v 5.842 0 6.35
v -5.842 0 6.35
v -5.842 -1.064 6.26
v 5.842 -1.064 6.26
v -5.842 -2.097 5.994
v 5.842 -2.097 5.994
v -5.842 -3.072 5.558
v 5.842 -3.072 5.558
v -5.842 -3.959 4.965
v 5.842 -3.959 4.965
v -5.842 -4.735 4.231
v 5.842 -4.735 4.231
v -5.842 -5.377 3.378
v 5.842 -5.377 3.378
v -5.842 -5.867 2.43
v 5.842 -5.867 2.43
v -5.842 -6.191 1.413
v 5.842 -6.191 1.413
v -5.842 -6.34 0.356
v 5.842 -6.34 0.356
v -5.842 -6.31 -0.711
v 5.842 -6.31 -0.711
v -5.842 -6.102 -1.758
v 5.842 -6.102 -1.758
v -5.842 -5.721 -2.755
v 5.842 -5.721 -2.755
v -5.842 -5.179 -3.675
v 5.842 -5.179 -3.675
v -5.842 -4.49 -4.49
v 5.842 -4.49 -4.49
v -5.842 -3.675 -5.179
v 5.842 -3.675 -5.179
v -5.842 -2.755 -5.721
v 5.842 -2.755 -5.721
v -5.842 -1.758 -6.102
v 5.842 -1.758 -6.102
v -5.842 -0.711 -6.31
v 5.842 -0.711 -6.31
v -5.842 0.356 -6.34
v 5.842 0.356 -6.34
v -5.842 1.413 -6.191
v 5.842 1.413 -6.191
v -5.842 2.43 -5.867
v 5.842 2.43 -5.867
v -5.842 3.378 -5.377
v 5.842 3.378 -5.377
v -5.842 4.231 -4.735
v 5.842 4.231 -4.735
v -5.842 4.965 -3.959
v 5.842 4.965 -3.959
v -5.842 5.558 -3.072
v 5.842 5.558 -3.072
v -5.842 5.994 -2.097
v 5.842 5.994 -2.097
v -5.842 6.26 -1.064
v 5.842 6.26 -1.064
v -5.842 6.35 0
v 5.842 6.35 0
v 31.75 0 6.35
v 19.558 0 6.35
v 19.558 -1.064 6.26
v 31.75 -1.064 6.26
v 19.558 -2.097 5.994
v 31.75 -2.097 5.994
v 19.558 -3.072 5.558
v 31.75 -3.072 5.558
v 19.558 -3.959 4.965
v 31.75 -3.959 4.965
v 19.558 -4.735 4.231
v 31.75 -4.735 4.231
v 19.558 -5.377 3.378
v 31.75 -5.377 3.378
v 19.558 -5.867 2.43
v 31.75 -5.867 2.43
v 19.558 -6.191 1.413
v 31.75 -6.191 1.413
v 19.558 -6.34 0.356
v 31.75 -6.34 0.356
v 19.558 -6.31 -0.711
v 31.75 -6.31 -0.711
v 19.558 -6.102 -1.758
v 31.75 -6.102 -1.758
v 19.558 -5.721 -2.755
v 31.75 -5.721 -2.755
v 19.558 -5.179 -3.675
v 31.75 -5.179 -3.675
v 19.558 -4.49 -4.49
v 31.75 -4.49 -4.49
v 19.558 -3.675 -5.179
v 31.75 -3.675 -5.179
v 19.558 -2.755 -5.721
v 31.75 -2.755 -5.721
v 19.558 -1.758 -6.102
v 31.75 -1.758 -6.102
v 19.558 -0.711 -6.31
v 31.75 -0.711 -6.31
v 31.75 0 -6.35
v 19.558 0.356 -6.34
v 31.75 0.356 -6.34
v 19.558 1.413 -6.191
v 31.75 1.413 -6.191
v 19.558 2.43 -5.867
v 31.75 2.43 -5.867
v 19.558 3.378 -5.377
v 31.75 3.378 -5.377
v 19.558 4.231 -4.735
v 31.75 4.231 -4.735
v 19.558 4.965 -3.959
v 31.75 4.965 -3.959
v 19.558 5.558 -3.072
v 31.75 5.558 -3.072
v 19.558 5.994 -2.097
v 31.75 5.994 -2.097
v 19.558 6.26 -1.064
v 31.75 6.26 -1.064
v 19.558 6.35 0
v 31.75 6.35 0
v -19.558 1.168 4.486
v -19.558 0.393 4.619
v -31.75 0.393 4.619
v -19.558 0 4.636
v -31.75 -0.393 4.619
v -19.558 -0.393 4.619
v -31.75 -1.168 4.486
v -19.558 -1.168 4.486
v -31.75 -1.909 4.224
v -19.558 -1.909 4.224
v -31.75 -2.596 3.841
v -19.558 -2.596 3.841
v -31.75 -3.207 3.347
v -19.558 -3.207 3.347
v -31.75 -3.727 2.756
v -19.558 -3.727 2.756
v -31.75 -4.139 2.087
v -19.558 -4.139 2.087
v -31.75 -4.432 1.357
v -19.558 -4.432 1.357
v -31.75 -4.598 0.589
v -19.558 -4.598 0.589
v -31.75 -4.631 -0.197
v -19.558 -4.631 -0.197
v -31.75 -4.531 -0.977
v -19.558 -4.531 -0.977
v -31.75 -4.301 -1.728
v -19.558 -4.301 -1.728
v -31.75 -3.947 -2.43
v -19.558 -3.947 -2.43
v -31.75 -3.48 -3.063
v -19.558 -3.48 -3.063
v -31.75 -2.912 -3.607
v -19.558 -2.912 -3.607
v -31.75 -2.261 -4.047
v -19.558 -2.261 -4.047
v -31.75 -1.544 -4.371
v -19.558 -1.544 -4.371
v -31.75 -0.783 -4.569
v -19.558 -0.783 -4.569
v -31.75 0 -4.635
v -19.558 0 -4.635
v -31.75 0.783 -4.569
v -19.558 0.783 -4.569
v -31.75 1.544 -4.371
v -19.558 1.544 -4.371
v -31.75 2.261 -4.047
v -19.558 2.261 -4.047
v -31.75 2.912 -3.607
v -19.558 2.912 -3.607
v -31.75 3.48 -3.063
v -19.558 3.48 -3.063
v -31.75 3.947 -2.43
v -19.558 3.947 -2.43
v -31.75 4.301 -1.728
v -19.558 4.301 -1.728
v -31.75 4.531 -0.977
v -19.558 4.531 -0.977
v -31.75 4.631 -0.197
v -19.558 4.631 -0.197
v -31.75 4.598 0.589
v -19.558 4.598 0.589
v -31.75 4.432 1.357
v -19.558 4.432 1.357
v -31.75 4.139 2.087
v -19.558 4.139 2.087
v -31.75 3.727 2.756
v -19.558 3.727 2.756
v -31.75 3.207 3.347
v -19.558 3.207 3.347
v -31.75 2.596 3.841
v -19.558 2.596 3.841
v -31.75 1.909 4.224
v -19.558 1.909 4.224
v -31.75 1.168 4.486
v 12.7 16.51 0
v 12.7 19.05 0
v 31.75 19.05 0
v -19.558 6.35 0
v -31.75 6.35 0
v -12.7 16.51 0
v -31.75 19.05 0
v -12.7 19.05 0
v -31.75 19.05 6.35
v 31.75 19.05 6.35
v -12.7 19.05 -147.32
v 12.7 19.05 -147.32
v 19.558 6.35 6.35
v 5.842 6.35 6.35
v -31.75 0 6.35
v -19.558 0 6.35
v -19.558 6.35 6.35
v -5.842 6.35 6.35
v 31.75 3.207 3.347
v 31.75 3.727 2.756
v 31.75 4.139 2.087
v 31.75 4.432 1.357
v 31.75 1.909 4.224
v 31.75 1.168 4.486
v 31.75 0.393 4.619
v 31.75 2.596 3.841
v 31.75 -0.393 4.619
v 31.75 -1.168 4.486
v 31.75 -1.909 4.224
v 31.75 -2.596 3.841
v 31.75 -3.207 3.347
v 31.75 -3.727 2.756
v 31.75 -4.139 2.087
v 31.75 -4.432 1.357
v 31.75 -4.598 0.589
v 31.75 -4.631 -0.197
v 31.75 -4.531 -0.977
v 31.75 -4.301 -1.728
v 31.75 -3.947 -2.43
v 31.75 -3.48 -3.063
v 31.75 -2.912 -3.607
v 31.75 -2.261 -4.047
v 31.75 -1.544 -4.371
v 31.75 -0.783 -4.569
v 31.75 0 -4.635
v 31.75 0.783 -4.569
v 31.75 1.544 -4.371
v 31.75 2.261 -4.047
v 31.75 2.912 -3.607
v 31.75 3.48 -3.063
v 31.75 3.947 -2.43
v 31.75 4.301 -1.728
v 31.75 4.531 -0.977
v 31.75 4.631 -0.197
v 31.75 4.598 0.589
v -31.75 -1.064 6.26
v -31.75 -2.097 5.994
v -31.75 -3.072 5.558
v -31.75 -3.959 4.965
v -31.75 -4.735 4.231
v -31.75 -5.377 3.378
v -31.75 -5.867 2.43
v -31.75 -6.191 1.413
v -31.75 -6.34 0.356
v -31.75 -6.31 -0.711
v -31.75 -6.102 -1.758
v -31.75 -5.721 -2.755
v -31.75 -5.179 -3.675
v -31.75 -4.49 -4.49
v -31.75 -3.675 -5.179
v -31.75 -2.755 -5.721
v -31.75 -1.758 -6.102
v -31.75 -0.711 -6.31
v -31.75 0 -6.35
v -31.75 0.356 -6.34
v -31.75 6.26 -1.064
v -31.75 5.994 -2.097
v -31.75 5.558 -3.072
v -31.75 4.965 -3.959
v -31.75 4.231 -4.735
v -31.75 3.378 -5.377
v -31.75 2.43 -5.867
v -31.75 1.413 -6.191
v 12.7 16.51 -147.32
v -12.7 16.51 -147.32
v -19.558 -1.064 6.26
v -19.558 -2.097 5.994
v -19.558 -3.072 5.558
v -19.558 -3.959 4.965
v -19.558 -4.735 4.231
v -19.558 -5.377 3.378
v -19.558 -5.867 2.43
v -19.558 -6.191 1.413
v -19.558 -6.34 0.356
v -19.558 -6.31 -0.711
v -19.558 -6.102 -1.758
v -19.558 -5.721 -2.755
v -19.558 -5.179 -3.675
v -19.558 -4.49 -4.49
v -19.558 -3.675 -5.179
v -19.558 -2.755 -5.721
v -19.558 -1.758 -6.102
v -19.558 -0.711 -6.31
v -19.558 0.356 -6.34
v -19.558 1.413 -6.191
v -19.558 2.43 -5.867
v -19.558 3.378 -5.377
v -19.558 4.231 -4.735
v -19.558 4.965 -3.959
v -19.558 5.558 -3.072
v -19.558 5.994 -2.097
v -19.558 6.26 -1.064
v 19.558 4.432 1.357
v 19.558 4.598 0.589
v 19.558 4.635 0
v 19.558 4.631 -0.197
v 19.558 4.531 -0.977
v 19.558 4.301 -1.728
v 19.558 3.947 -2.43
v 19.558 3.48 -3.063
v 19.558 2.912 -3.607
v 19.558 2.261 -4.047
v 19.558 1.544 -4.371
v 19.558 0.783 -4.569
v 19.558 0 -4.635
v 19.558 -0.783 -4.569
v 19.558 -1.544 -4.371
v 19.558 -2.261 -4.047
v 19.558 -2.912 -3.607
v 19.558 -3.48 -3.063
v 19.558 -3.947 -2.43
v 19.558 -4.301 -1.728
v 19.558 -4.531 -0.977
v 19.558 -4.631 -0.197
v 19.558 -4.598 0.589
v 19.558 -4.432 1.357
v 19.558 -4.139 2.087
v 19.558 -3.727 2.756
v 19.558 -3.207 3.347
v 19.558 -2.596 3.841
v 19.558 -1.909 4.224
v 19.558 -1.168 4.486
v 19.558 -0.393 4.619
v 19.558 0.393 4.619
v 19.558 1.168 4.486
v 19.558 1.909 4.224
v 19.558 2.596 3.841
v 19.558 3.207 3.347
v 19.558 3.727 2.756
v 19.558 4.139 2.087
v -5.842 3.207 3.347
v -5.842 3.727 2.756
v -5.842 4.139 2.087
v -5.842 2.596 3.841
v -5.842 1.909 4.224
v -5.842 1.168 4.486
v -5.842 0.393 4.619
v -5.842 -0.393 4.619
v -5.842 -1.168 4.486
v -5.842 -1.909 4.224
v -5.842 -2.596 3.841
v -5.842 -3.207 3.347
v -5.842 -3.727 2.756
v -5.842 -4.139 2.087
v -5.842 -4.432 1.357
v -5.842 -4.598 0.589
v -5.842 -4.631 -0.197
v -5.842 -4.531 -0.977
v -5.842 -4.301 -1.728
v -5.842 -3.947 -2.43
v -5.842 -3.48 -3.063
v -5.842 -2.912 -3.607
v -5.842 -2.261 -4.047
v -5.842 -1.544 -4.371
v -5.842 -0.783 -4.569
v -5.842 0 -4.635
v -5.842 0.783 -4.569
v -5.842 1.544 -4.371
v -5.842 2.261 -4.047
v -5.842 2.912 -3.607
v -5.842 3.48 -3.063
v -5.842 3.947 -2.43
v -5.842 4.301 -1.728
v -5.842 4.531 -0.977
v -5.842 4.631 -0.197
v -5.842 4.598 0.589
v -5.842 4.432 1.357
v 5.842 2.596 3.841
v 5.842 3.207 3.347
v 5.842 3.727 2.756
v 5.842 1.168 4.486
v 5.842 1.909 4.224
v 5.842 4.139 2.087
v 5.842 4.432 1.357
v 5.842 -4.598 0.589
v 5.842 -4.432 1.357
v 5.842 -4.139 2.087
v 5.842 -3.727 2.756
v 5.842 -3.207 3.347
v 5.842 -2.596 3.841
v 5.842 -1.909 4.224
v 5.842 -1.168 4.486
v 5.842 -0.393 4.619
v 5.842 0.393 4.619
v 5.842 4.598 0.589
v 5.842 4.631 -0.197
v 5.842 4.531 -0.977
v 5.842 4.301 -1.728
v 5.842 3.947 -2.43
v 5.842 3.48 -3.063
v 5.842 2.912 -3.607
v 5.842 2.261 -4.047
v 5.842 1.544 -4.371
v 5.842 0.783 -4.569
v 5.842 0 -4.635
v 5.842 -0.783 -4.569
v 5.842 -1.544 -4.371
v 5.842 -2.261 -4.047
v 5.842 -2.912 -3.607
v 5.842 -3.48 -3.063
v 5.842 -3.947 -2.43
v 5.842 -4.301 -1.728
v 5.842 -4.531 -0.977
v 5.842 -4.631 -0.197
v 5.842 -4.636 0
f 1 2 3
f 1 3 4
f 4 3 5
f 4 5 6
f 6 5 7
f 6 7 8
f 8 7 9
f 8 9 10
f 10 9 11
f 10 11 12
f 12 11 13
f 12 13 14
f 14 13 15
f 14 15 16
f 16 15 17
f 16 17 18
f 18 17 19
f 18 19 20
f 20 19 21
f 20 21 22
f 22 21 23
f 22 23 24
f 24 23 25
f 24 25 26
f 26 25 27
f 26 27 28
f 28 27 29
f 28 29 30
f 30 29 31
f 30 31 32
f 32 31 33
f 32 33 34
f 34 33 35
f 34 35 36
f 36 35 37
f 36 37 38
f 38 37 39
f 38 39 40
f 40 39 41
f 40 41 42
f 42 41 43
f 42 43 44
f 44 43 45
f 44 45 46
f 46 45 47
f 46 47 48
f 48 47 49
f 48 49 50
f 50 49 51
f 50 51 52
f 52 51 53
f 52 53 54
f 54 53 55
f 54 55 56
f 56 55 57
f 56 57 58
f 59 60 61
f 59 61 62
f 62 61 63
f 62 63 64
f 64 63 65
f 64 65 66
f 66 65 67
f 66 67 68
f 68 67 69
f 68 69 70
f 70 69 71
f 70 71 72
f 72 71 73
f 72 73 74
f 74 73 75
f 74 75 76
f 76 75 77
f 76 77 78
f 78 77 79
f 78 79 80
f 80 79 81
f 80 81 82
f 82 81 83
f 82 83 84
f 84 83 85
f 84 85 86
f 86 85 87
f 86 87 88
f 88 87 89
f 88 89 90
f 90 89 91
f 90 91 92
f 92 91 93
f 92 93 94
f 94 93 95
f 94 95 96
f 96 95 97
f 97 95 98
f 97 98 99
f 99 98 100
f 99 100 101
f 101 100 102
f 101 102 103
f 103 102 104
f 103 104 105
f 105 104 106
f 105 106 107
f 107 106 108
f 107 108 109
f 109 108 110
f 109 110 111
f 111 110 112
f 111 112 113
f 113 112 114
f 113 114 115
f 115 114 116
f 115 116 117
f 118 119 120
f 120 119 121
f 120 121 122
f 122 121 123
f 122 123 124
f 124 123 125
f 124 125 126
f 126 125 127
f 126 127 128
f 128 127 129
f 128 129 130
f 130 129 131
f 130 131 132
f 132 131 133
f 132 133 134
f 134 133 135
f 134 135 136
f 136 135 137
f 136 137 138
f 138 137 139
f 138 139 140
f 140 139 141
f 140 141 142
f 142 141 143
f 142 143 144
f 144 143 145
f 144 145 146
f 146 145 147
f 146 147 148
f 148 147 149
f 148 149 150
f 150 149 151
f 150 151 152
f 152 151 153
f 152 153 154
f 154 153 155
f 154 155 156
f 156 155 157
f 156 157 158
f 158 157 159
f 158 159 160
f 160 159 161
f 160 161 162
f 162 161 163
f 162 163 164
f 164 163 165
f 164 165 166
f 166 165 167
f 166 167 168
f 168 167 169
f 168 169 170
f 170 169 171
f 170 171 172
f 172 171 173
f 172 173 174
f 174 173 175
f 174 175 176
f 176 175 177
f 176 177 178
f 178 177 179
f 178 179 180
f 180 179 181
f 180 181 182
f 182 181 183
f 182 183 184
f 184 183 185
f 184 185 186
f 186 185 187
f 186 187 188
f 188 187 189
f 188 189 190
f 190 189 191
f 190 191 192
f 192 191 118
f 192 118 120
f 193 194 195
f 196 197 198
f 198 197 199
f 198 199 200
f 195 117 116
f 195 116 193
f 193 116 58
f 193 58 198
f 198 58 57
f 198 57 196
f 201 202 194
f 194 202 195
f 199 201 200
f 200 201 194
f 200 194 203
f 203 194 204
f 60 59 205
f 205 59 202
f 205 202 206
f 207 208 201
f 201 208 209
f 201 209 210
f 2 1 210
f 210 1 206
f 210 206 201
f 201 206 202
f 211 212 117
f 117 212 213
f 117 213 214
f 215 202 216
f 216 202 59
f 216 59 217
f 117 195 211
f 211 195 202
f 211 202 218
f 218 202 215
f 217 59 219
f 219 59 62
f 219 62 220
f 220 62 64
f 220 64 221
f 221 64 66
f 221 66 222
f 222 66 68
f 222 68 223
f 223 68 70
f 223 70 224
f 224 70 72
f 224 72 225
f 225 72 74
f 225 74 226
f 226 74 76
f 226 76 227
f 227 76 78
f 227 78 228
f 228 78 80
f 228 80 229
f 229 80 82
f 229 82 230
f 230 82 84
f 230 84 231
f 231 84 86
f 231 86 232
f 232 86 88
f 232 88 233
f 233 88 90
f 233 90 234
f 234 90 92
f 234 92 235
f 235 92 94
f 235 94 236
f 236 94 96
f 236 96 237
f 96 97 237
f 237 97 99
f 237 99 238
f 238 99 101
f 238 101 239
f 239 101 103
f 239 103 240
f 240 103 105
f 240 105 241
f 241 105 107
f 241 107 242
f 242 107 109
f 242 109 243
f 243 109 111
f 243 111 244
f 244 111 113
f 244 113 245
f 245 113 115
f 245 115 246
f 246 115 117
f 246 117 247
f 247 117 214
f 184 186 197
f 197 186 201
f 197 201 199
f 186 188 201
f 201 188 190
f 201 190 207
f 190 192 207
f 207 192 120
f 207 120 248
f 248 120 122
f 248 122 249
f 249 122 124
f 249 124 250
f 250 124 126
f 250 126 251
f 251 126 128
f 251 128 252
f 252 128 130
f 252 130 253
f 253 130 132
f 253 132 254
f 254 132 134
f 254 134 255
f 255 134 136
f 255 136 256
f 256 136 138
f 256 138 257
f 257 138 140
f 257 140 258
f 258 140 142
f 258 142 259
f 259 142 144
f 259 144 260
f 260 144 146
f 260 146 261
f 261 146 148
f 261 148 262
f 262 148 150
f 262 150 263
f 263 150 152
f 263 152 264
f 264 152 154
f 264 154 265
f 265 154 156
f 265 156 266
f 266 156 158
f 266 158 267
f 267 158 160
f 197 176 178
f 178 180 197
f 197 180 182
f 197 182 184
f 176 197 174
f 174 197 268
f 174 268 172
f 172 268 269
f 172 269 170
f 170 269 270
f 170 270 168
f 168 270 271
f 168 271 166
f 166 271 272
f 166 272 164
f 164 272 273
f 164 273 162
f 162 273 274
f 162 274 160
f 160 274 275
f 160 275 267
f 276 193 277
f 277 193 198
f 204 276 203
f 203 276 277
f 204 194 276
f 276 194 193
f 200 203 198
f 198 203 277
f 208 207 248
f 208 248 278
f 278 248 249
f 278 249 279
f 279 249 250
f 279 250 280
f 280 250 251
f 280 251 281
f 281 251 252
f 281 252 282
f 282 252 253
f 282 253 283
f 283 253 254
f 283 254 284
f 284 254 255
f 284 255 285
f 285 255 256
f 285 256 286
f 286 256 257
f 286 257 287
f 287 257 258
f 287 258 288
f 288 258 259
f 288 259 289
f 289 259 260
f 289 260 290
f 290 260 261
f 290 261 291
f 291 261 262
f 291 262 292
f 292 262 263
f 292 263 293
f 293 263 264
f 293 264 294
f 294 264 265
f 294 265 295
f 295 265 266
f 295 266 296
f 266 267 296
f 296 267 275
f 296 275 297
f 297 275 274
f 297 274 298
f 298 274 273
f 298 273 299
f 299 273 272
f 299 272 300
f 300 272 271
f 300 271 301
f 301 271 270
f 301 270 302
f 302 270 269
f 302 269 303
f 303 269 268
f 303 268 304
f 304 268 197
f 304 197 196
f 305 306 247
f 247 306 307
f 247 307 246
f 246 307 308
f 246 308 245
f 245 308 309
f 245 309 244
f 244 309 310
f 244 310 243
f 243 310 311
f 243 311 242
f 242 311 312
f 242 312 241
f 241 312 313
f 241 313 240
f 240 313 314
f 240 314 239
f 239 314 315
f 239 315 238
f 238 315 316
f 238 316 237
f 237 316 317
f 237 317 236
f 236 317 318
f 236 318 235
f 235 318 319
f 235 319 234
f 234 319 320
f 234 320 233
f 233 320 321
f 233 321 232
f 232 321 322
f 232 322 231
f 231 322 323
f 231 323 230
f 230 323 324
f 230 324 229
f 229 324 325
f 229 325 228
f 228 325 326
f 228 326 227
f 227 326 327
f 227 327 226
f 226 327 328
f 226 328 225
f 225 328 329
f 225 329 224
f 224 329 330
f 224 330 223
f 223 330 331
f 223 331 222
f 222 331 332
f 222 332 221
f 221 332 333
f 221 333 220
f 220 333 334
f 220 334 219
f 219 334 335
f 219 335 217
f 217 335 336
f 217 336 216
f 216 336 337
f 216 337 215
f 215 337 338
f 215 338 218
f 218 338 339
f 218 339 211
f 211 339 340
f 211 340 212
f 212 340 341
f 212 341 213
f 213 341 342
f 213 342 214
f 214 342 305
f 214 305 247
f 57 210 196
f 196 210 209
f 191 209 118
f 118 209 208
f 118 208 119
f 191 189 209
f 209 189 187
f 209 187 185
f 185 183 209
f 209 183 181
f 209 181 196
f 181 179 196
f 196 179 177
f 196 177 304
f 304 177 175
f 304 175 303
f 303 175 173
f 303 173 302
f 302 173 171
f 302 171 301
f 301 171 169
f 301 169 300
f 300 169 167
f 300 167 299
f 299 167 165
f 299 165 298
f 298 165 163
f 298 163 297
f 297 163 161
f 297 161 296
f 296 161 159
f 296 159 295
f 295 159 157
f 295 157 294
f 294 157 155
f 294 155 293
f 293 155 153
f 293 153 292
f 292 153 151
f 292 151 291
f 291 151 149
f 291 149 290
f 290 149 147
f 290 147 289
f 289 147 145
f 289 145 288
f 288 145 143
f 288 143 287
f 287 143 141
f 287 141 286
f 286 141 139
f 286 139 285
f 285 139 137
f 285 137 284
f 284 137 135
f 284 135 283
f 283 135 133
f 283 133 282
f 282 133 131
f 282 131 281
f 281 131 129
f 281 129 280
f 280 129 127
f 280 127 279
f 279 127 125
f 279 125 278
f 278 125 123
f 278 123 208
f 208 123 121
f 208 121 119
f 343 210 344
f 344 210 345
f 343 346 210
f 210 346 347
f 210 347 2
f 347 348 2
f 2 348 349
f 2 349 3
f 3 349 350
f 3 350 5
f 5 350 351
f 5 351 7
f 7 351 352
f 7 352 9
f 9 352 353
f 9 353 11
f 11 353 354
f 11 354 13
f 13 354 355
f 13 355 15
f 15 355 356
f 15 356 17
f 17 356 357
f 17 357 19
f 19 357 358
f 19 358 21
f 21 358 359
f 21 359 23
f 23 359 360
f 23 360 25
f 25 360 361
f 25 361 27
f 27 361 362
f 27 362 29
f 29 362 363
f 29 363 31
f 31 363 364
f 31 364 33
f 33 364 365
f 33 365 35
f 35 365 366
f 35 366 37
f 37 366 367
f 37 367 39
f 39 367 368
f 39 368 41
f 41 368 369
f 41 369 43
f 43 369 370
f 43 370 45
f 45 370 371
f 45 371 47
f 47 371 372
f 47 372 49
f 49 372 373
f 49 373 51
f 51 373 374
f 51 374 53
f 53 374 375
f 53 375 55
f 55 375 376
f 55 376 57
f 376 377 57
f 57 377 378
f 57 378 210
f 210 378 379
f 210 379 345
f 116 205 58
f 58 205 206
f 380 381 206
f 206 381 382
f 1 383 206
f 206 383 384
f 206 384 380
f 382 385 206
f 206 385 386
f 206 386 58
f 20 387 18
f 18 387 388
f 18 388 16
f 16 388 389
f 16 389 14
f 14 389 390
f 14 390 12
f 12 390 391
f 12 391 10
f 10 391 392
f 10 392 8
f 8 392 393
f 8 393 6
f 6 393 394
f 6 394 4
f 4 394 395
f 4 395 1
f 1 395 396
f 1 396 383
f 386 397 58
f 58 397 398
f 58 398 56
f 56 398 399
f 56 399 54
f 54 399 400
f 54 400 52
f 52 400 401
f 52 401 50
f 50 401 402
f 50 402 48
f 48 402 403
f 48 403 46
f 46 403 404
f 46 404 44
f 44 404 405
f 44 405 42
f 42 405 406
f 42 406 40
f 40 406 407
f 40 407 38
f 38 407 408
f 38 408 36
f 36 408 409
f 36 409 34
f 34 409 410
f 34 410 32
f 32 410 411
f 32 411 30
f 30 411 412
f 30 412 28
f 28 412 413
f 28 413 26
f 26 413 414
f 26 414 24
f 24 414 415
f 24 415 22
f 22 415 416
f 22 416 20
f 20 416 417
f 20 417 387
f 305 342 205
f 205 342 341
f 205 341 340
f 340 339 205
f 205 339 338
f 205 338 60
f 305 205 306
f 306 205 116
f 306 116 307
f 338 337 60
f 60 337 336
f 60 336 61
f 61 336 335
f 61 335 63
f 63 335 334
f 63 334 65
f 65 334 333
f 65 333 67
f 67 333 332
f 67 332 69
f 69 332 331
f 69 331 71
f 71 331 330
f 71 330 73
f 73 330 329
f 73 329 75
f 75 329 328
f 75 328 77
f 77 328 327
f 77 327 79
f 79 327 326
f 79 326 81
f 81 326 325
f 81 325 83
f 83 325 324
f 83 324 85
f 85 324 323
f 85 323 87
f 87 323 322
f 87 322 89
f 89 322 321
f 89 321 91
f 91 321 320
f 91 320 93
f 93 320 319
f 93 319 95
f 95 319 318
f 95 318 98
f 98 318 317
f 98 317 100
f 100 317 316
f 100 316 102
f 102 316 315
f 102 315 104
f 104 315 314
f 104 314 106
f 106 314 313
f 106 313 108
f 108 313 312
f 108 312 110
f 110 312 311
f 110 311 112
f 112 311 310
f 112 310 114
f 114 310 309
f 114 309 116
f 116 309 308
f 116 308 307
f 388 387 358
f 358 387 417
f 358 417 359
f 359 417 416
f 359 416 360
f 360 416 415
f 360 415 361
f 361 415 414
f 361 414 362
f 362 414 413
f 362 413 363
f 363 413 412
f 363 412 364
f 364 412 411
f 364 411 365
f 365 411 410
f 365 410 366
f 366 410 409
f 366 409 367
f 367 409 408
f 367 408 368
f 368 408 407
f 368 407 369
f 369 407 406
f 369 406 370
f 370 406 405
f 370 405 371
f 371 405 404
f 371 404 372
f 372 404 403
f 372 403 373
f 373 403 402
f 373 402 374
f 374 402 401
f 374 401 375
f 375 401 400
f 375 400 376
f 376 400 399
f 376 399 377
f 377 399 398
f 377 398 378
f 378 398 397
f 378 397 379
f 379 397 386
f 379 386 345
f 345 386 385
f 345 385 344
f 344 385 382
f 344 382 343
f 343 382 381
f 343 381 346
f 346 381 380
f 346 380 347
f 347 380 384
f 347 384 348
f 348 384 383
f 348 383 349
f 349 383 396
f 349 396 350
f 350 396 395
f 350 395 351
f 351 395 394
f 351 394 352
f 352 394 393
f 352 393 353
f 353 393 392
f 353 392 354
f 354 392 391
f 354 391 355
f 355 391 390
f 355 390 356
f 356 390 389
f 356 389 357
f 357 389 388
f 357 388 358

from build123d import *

# Parameters (mm, degrees)
SKETCH1_W               = 6.35
SKETCH1_H               = 19.05
BOSS_EXTRUDE1_DEPTH     = 31.75
SKETCH2_W               = 147.32
SKETCH2_H               = 2.54
EXTRUDE_THIN1_DEPTH     = 12.7
SKETCH3_R               = 6.35
SKETCH4_R               = 4.6355
CUT_EXTRUDE2_DEPTH      = 162.549790777
CUT_EXTRUDE4_DEPTH      = 159.067814244
CUT_EXTRUDE4_DEPTH_BACK = 159.067814244
SKETCH5_W               = 13.716
SKETCH5_H               = 12.7


with BuildPart() as part:
    # Sketch1 → Boss-Extrude1 (new, symmetric)
    with BuildSketch(Plane(origin=(0, 0, 0), x_dir=(0, 0, -1), z_dir=(1, 0, 0))):
        with Locations((-3.175, 9.525)):
            Rectangle(SKETCH1_W, SKETCH1_H)
    extrude(amount=BOSS_EXTRUDE1_DEPTH, both=True)

    # Sketch2 → Extrude-Thin1 (add, symmetric)
    with BuildSketch(Plane(origin=(0, 0, 0), x_dir=(0, 0, -1), z_dir=(1, 0, 0))):
        with Locations((73.66, 17.78)):
            Rectangle(SKETCH2_W, SKETCH2_H)
    extrude(amount=EXTRUDE_THIN1_DEPTH, both=True)

    # Sweep1: sweep along a curve in space
    with BuildLine() as sweep1_path:
        Line((31.75, 0, 0), (-31.75, 0, 0))
    # Sketch3 → Sweep1 (sweep)
    with BuildSketch(Plane(origin=(31.75, 0, 0), x_dir=(0, 0, -1), z_dir=(1, 0, 0))):
        Circle(SKETCH3_R)
    sweep(path=sweep1_path.line)

    # Sketch4 → Cut-Extrude2 (cut, through all)
    with BuildSketch(Plane(origin=(31.75, 0, 0), x_dir=(0, 0, -1), z_dir=(1, 0, 0))):
        Circle(SKETCH4_R)
    extrude(amount=-CUT_EXTRUDE2_DEPTH, mode=Mode.SUBTRACT)

    # Sketch5 → Cut-Extrude4 (cut, two sides: drawn at the far end of the back side and taken through both)
    with BuildSketch(Plane.XY.offset(6.35).offset(-CUT_EXTRUDE4_DEPTH_BACK)):
        with Locations((12.7, 0)):
            Rectangle(SKETCH5_W, SKETCH5_H)
        with Locations((-12.7, 0)):
            Rectangle(SKETCH5_W, SKETCH5_H)
    extrude(amount=CUT_EXTRUDE4_DEPTH + CUT_EXTRUDE4_DEPTH_BACK, mode=Mode.SUBTRACT)


solid = part.part
